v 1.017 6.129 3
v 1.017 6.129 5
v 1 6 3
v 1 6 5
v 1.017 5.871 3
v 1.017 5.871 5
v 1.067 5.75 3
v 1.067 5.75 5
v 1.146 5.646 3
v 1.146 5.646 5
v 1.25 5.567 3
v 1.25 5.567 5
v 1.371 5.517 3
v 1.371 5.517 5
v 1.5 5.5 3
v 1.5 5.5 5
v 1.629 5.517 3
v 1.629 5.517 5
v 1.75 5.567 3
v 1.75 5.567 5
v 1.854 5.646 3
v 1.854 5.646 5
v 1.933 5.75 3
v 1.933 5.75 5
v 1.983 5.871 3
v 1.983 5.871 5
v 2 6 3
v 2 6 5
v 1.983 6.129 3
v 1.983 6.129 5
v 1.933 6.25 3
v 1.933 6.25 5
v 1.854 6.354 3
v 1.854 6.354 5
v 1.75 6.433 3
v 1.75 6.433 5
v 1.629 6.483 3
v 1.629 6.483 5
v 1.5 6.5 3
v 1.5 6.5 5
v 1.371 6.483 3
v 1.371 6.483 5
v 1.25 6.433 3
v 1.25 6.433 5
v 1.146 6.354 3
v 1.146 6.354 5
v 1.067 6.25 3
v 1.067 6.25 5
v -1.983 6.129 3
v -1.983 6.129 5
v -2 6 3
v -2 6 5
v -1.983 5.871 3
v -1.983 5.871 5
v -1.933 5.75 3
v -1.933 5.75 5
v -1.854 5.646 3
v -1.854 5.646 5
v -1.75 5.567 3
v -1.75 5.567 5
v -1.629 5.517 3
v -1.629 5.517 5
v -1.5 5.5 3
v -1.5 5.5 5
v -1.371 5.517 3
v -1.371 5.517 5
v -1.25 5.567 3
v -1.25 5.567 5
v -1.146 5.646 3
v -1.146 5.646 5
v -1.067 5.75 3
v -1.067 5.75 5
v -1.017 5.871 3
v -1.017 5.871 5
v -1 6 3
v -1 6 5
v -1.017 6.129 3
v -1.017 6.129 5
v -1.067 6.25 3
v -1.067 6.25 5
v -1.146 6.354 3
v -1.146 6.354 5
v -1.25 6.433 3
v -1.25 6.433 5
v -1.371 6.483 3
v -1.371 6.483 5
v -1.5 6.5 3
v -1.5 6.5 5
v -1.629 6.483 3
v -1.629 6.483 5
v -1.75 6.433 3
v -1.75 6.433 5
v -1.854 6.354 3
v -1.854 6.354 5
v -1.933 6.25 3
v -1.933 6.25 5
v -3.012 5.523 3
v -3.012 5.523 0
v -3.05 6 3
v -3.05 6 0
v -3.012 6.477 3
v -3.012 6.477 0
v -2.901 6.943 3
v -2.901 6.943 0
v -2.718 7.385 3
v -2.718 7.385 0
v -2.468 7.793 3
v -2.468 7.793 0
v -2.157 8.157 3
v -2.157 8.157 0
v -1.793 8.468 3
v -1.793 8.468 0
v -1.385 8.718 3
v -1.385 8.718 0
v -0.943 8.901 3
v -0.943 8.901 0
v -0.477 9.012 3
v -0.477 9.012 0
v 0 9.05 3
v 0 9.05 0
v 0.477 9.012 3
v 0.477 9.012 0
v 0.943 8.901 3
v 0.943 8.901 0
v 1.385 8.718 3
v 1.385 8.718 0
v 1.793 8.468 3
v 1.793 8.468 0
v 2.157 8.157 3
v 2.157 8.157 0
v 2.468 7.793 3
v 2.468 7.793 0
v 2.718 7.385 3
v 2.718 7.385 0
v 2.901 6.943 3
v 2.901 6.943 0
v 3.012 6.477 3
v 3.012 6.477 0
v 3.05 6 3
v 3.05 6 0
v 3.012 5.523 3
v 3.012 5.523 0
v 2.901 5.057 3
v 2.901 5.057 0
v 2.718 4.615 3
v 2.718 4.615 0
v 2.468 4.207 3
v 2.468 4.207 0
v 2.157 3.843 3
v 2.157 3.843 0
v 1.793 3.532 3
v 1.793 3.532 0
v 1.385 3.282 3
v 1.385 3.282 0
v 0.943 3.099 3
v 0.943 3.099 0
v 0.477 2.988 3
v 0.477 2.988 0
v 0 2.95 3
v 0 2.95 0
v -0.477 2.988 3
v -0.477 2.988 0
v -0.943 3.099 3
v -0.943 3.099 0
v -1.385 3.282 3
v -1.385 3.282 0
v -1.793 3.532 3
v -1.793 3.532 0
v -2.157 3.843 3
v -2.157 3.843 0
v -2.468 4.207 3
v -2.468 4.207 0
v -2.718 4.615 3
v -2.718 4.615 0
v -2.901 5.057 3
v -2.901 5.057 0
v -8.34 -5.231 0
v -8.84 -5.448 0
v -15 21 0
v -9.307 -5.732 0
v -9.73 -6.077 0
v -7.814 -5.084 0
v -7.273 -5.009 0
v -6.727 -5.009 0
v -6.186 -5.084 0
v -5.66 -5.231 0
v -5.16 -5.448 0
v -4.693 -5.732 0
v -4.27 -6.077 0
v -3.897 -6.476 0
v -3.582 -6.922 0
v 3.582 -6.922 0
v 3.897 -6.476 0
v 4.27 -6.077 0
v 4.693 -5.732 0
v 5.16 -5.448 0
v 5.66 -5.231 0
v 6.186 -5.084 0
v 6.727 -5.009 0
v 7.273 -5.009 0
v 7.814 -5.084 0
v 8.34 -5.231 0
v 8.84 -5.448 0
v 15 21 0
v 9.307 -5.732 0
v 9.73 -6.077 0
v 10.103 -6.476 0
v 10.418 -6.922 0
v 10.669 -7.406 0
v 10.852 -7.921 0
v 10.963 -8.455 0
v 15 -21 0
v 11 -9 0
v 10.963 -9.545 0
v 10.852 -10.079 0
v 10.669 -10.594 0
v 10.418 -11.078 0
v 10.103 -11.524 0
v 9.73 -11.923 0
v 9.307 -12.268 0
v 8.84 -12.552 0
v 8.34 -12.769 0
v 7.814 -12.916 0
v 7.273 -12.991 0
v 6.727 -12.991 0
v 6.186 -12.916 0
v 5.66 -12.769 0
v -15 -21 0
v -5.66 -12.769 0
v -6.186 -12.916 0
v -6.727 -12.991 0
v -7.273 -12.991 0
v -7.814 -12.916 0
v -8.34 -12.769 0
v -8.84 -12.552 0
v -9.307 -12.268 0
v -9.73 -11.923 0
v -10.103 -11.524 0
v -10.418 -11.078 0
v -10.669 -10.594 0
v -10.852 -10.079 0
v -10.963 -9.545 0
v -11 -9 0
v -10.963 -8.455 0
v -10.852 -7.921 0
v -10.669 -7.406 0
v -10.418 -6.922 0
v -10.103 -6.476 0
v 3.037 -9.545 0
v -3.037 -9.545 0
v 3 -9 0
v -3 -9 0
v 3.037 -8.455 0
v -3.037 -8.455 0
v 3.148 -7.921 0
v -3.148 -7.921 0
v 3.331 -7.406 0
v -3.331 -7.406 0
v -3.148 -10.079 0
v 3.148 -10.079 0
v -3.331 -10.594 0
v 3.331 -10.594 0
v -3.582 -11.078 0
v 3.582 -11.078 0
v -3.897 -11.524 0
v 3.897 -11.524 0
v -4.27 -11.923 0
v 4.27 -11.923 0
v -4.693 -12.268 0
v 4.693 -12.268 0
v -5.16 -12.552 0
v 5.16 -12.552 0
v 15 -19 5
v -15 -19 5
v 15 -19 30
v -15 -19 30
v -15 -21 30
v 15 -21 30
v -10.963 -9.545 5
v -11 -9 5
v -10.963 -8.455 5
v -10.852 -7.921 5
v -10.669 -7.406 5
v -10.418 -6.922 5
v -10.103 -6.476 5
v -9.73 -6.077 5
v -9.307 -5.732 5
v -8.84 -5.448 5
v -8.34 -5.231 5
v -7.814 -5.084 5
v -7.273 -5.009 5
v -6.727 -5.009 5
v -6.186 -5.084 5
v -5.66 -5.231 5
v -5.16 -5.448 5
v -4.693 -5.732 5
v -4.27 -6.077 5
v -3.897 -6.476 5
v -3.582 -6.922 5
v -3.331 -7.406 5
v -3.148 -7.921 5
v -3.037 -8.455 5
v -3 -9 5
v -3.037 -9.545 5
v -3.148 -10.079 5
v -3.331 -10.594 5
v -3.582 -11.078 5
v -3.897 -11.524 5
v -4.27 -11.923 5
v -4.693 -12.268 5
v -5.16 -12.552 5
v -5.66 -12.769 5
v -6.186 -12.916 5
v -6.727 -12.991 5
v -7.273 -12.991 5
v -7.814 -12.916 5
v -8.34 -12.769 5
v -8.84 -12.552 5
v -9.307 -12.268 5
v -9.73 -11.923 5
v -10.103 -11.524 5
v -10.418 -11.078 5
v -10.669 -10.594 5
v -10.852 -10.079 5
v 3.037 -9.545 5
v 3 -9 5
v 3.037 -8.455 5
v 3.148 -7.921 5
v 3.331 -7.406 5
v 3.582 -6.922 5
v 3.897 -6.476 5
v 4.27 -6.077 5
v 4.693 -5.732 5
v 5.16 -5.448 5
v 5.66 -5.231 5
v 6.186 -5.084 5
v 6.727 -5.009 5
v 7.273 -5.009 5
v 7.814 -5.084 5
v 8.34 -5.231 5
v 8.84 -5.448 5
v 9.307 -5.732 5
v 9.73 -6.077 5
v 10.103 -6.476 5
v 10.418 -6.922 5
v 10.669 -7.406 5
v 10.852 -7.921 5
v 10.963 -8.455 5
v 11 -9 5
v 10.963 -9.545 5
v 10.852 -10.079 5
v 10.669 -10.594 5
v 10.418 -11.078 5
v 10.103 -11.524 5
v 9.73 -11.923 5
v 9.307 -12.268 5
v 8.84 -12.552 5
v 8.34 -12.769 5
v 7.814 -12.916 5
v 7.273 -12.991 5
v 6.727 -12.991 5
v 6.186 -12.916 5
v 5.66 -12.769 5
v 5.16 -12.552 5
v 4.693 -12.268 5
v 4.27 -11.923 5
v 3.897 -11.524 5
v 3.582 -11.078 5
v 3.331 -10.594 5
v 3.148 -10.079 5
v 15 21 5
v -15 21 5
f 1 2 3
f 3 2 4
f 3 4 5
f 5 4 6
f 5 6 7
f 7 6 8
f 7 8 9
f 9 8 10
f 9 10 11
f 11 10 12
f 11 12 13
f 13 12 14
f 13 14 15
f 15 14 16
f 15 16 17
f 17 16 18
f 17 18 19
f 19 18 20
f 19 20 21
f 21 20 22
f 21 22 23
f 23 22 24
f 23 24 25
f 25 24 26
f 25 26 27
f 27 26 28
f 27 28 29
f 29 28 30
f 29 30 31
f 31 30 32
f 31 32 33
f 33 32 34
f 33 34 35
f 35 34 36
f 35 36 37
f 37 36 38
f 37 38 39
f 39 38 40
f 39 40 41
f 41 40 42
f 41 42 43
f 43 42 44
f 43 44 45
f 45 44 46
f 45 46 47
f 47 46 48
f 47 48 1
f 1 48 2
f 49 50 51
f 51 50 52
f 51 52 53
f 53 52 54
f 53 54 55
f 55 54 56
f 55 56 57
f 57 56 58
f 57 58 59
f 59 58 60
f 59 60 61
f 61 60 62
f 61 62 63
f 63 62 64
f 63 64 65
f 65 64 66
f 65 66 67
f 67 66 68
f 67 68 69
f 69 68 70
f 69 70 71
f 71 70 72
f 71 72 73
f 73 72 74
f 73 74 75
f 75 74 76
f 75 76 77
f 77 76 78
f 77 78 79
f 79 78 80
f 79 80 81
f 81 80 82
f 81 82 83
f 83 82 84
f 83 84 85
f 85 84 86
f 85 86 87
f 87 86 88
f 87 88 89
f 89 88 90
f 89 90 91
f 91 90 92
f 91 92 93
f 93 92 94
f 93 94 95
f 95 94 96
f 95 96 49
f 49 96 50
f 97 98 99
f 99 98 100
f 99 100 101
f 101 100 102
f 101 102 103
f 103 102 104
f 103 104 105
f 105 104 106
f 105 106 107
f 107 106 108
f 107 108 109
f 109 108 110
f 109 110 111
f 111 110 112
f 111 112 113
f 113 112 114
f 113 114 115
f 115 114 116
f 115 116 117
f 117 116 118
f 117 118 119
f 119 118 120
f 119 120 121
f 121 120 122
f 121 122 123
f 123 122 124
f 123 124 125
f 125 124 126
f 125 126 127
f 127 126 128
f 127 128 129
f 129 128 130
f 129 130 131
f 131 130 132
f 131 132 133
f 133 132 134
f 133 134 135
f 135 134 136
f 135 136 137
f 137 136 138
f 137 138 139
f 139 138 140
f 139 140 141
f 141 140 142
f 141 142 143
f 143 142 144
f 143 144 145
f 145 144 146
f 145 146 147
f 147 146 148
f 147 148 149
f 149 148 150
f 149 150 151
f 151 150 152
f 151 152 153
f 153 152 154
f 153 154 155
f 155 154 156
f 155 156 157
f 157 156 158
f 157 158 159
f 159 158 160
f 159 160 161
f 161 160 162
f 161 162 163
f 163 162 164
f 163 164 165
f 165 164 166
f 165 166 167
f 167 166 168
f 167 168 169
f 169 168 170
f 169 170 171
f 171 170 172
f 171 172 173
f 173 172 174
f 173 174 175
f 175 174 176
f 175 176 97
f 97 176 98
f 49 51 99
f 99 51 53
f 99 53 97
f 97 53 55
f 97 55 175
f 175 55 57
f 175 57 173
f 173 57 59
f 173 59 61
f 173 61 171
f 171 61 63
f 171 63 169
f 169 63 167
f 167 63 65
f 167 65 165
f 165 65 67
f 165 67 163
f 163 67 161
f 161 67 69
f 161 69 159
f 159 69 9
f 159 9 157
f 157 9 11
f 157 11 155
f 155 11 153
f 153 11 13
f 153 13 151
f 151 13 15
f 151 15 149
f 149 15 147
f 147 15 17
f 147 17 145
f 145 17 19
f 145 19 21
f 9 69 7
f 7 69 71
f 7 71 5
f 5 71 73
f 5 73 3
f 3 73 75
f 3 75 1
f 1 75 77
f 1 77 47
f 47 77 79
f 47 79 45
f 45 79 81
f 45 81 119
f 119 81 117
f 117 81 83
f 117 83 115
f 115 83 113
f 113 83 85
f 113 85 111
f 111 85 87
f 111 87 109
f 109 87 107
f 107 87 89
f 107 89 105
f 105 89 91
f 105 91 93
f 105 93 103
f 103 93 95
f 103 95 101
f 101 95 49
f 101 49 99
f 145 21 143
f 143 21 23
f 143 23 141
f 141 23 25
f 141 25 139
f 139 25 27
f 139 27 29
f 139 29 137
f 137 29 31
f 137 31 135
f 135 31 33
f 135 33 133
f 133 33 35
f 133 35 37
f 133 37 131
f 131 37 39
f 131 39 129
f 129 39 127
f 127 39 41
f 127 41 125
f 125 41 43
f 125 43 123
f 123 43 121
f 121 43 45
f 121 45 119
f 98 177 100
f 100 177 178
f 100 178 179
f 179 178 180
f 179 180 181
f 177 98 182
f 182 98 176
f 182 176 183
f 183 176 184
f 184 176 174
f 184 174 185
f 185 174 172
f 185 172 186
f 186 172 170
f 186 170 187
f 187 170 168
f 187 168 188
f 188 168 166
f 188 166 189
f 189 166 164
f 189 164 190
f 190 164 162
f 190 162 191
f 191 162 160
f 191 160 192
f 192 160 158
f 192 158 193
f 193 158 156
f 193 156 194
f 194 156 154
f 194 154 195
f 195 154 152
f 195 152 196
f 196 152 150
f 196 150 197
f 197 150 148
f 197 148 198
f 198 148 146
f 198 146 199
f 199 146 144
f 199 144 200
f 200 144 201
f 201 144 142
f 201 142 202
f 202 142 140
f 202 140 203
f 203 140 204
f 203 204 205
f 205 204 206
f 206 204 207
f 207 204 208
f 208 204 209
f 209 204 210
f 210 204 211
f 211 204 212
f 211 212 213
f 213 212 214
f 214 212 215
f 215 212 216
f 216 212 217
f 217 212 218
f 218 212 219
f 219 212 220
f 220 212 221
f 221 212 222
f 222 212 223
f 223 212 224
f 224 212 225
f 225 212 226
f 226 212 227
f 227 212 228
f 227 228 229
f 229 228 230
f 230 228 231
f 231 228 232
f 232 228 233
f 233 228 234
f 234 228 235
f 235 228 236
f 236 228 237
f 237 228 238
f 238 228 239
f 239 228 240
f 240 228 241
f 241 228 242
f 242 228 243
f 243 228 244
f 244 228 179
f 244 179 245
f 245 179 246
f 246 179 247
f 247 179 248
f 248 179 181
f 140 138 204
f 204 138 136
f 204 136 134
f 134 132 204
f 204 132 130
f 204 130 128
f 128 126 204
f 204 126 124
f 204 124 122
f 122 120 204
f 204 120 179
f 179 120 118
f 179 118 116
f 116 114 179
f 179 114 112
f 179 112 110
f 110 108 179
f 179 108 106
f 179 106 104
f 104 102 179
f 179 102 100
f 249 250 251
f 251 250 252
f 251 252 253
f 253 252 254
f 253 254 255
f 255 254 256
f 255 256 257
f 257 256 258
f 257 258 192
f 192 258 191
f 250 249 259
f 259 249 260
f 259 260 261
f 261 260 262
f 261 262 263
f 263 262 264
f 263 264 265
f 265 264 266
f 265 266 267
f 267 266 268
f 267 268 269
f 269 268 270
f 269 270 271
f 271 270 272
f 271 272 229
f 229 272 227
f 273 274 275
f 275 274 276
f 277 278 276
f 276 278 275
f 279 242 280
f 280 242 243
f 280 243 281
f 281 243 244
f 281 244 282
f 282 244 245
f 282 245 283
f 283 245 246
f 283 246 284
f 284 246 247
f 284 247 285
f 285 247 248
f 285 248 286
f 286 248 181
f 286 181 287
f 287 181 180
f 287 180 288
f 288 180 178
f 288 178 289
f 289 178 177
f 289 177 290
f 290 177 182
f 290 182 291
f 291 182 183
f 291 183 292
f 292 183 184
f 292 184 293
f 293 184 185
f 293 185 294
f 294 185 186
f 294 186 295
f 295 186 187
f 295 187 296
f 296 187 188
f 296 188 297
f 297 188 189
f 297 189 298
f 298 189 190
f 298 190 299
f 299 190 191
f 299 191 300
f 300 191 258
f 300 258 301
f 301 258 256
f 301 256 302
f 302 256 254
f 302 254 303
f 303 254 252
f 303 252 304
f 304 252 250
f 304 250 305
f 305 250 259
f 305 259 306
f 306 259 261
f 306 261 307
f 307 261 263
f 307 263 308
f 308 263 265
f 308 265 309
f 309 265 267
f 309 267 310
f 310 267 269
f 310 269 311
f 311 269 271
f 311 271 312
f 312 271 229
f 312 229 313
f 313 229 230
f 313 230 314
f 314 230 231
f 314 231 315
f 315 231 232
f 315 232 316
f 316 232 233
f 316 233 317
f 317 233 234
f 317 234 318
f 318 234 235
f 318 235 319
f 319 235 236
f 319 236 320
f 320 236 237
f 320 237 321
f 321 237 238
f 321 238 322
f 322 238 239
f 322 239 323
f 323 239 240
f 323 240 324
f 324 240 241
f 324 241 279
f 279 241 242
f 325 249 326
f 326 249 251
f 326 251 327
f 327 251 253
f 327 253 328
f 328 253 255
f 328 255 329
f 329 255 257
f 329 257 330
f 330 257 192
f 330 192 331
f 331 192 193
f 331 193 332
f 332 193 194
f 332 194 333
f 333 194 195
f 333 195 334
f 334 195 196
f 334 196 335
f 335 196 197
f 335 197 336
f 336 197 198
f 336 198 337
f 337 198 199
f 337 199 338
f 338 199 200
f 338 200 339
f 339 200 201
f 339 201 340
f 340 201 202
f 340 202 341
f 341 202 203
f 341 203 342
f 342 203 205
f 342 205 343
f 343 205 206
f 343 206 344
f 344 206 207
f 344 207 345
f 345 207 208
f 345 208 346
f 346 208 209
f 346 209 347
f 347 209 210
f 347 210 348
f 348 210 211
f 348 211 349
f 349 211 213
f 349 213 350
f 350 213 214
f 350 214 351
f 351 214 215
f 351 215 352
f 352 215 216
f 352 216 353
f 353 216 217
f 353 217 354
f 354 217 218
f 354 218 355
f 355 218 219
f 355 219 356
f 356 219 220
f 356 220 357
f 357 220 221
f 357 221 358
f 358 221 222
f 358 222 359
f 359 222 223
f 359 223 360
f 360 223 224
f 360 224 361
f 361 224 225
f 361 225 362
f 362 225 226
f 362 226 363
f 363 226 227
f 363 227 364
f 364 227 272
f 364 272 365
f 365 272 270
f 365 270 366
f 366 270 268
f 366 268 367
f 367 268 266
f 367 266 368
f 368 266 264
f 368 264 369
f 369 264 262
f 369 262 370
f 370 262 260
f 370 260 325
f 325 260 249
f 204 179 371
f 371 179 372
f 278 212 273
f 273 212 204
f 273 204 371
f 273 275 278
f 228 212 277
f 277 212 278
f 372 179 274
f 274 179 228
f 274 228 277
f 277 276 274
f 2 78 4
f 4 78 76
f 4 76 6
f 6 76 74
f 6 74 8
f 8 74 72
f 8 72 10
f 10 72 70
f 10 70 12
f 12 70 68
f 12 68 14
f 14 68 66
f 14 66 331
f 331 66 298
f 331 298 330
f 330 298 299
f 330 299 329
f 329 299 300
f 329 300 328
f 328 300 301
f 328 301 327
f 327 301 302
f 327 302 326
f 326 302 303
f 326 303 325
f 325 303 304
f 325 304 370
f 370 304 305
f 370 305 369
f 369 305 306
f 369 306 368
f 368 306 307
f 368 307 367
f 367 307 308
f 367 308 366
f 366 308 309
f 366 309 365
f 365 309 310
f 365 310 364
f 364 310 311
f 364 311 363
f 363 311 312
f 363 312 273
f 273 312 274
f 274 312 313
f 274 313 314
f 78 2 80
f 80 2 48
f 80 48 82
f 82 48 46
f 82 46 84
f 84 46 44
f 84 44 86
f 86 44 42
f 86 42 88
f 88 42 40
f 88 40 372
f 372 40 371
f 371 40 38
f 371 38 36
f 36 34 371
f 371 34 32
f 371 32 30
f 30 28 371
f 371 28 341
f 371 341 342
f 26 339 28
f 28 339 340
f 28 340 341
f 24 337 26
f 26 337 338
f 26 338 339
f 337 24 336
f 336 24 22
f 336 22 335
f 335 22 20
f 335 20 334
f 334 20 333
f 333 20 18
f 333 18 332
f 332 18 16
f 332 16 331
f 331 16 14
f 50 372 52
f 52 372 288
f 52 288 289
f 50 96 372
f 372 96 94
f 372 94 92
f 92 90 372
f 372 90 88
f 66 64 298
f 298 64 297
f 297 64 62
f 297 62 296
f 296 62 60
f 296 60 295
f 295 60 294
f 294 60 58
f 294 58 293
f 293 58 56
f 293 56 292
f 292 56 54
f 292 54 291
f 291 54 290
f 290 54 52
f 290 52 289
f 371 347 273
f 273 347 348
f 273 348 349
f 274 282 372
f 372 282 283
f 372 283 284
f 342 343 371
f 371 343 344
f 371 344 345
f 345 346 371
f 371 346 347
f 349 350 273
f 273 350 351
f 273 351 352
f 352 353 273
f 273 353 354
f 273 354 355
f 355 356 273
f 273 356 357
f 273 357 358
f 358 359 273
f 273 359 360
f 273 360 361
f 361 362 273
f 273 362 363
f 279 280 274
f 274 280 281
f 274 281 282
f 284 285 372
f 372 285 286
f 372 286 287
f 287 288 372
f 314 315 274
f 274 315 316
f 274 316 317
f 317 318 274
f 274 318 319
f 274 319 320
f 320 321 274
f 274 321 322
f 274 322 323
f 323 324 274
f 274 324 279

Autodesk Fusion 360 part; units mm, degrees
sketch "Sketch1" plane through (0, 0, 0) normal (0, 0, 1) x (1, 0, 0)
  line L0 (-15, -21) -> (15, -21)
  line L1 (15, -21) -> (15, 21)
  line L2 (15, 21) -> (-15, 21)
  line L3 (-15, 21) -> (-15, -21)
  line L4 (-15, -21) -> (15, 21) construction
  line L5 (15, -21) -> (-15, 21) construction
  line L6 (0, -21) -> (7, -21) construction
  line L7 (7, -21) -> (7, -9) construction
  line L8 (7, -9) -> (0, -9) construction
  line L9 (0, -9) -> (0, -21) construction
  line L10 (0, -21) -> (-7, -21) construction
  line L11 (-7, -21) -> (-7, -9) construction
  line L12 (-7, -9) -> (0, -9) construction
  line L13 (0, -9) -> (0, -21) construction
  circle A0 centre (-7, -9) radius 4
  circle A1 centre (7, -9) radius 4
  dimension "d1" = 30
  dimension "d2" = 42
  dimension "d3" = 7
  dimension "d4" = 12
  dimension "d5" = 7
  dimension "d6" = 12
  dimension "d7" = 8
  dimension "d8" = 8
extrude "Extrude1" add sketch "Sketch1" along normal blind 5 makes body 1
sketch "Sketch2" plane through (0, 0, 5) normal (0, 0, 1) x (-1, 0, 0)
  circle A0 centre (-7, 9) radius 4
  circle A1 centre (7, 9) radius 4
  line L0 (15, -21) -> (15, 21)
  line L1 (15, 21) -> (-15, 21)
  line L2 (-15, 21) -> (-15, -21)
  line L3 (-15, -21) -> (15, -21)
  line L4 (15, 21) -> (-15, 21)
  line L5 (-15, 21) -> (-15, 19)
  line L6 (-15, 19) -> (15, 19)
  line L7 (15, 19) -> (15, 21)
  dimension "d11" = 30
  dimension "d12" = 2
extrude "Extrude2" add sketch "Sketch2" along normal blind 25 contours L0 L1 L2 L4 L5 L6 L7 bodies 1
sketch "Sketch3" plane through (0, 0, 0) normal (0, 0, -1) x (1, 0, 0)
  circle A0 centre (7, 9) radius 4
  circle A1 centre (-7, 9) radius 4
  line L0 (-15, 21) -> (-15, -21)
  line L1 (-15, -21) -> (15, -21)
  line L2 (15, -21) -> (15, 21)
  line L3 (15, 21) -> (-15, 21)
  line L4 (0, 21) -> (-1.5, 21) construction
  line L5 (-1.5, 21) -> (-1.5, -6) construction
  line L6 (-1.5, -6) -> (0, -6) construction
  line L7 (0, -6) -> (0, 21) construction
  line L8 (0, 21) -> (1.5, 21) construction
  line L9 (1.5, 21) -> (1.5, -6) construction
  line L10 (1.5, -6) -> (0, -6) construction
  line L11 (0, -6) -> (0, 21) construction
  circle A2 centre (0, -6) radius 3.05
  circle A3 centre (-1.5, -6) radius 0.5
  circle A4 centre (1.5, -6) radius 0.5
  dimension "d15" = 1.5
  dimension "d16" = 27
  dimension "d17" = 27
  dimension "d18" = 6.1
  dimension "d19" = 1
  dimension "d20" = 1
extrude "Extrude3" cut sketch "Sketch3" against normal blind 3 contours A2 bodies 1
extrude "Extrude4" cut 2 faces at (1.3037, 5.8866, 0) (-1.4875, 6.1662, 0) along direction (0, 0, -1) up to surface end surface through (0, 0, 5) normal (0, 0, 1) offset 0 on bodies 1 bodies 1
copy_body "Body->Comp1" bodies 1 removing the originals makes body 2 in component "LED_Holder"
component "LED_Holder" placed x (1, 0, 0) y (0, 1, 0) z (0, 0, 1) at (0, 0, 0)
